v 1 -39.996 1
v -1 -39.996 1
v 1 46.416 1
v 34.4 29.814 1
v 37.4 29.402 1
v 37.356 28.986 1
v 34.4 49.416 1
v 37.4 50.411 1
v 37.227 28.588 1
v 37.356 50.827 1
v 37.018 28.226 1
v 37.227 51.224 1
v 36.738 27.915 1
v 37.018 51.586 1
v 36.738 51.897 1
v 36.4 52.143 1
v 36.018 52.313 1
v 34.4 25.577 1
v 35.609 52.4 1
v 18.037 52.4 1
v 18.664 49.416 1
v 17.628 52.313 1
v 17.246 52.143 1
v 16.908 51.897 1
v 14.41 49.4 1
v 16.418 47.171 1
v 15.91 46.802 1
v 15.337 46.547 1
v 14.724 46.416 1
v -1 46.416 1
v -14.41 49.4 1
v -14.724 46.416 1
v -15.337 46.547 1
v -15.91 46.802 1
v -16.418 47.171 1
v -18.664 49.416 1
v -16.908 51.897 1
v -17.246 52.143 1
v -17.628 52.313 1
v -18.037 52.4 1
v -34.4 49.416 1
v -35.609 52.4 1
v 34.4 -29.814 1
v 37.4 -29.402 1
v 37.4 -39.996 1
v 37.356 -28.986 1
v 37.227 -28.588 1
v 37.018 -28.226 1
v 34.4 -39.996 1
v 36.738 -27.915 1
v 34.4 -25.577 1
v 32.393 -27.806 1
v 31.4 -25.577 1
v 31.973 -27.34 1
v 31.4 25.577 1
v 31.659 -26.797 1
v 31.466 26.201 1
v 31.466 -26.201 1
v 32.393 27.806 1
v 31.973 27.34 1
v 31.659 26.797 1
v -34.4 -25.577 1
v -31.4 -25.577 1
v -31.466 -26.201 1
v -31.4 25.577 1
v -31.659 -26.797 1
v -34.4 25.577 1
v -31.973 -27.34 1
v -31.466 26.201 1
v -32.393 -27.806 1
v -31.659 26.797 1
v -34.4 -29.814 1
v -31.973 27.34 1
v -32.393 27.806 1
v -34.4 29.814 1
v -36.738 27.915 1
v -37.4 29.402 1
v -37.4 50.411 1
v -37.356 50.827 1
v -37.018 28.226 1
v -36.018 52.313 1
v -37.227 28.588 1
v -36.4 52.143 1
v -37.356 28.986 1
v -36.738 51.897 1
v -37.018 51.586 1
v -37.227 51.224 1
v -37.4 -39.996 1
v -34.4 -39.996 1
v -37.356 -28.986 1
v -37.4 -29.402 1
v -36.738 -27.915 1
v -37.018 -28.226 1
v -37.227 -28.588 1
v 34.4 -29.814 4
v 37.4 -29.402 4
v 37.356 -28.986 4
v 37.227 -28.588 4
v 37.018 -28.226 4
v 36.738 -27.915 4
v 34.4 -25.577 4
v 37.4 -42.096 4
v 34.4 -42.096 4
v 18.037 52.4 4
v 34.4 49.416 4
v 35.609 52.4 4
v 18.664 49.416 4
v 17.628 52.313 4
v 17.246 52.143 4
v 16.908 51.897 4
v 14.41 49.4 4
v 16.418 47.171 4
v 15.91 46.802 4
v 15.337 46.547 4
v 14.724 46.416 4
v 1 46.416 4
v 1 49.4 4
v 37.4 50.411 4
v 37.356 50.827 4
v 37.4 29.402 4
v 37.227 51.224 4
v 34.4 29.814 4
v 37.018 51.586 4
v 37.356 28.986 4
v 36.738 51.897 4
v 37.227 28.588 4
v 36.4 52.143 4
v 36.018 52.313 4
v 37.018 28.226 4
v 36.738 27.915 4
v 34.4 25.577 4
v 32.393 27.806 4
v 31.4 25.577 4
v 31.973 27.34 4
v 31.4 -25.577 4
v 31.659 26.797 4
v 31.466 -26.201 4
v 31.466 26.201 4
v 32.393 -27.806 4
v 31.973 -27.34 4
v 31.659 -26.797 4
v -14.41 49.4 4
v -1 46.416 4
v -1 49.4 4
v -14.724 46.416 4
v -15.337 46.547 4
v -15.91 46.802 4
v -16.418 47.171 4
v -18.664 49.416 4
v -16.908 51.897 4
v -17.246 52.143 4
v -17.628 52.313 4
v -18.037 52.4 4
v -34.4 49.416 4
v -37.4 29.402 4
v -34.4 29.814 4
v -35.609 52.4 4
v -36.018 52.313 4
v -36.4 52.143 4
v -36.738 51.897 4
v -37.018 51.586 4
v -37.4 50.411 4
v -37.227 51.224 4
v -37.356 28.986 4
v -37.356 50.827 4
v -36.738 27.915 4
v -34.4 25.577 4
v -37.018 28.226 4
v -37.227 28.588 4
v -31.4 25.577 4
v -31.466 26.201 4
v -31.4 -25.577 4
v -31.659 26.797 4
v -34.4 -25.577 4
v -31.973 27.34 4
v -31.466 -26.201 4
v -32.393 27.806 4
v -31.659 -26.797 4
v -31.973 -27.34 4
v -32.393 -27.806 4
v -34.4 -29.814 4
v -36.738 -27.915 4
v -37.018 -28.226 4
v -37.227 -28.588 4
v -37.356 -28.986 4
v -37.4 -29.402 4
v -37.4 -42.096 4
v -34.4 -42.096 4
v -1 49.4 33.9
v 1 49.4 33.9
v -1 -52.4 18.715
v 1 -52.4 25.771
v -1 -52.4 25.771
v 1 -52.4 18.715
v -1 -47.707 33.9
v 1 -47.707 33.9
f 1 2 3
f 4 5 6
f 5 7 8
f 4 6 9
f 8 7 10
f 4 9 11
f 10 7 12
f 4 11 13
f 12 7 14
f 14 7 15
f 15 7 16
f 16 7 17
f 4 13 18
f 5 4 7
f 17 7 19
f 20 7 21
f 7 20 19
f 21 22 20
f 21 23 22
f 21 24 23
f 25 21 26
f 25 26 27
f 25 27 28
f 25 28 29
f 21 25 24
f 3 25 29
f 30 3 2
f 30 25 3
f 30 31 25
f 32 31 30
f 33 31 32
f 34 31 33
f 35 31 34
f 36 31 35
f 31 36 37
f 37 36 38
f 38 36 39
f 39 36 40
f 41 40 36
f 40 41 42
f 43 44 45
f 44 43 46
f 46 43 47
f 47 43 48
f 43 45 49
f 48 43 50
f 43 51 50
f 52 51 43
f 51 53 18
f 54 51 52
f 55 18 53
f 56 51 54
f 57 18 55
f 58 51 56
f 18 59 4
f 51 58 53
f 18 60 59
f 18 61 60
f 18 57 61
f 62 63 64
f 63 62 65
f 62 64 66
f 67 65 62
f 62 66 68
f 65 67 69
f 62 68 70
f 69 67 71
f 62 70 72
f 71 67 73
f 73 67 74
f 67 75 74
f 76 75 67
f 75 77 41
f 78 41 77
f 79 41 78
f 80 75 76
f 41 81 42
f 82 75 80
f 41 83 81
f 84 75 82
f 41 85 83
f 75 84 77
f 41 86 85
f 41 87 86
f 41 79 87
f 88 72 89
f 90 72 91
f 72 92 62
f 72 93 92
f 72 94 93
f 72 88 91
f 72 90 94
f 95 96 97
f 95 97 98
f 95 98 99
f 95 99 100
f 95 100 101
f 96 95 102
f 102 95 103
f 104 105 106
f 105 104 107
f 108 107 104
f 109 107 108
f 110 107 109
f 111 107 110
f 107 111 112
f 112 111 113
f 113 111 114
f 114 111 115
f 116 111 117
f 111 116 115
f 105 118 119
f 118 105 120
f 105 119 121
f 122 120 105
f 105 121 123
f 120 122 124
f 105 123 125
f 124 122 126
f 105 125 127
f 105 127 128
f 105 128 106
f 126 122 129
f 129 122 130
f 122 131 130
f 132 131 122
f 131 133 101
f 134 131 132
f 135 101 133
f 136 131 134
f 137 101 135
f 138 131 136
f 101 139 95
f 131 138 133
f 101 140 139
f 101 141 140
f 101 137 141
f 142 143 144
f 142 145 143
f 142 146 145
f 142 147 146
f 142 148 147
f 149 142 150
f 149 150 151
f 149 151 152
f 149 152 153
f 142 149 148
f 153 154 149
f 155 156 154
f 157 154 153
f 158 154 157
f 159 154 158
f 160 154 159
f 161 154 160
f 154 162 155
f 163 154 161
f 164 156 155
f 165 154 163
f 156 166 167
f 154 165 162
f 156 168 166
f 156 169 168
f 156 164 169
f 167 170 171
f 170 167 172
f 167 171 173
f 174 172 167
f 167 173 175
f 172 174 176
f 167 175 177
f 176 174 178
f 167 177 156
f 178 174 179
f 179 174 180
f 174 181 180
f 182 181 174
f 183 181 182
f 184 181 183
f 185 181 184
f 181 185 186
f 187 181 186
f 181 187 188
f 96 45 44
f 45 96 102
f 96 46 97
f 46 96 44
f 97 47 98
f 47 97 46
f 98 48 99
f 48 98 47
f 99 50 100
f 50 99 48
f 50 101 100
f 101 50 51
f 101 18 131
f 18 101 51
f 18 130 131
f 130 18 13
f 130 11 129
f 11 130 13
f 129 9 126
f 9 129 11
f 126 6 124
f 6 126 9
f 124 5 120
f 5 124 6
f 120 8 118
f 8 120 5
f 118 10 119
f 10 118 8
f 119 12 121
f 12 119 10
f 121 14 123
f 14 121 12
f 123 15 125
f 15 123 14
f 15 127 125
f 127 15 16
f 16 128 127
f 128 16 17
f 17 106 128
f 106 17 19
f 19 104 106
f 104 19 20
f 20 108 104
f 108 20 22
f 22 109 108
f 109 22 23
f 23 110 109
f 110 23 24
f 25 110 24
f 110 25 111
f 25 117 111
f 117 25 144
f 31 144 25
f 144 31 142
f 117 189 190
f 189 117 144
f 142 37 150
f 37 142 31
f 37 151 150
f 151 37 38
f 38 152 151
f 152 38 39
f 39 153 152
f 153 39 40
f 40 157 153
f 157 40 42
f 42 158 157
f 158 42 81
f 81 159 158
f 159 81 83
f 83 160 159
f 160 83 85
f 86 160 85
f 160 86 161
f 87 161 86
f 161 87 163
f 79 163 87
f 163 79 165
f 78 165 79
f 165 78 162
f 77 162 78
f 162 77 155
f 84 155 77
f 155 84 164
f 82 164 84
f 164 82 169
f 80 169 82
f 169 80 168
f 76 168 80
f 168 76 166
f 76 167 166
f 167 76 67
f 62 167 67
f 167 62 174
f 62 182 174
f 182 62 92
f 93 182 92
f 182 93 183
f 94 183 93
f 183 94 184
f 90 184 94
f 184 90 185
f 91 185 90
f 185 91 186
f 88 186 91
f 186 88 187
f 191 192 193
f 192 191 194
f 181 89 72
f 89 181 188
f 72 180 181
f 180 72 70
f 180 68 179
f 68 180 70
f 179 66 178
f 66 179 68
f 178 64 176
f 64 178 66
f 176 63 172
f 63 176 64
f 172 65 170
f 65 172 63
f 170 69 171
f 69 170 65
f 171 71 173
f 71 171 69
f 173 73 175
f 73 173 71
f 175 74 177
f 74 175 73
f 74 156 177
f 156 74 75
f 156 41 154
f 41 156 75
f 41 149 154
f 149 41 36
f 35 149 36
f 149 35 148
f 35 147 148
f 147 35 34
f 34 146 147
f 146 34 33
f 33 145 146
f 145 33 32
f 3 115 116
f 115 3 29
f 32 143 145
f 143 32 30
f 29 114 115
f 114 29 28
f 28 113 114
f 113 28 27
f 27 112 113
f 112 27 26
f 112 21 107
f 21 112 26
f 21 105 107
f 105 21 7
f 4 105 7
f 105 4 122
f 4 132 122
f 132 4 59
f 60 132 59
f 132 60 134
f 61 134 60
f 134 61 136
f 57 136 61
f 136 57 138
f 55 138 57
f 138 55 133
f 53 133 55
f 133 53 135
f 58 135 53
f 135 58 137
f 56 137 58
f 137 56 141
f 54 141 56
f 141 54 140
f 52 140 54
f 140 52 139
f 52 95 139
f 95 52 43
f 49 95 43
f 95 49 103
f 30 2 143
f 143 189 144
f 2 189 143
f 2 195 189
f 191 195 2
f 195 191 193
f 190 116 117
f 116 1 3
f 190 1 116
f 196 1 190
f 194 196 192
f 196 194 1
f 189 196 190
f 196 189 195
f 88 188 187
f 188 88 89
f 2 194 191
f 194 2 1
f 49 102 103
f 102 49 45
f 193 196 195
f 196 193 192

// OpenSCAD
// file: scad-utils/morphology.scad
// Copyright (c) 2013 Oskar Linde. All rights reserved.
// License: BSD
//
// This library contains basic 2D morphology operations
//
// outset(d=1)            - creates a polygon at an offset d outside a 2D shape
// inset(d=1)             - creates a polygon at an offset d inside a 2D shape
// fillet(r=1)            - adds fillets of radius r to all concave corners of a 2D shape
// rounding(r=1)          - adds rounding to all convex corners of a 2D shape
// shell(d,center=false)  - makes a shell of width d along the edge of a 2D shape
//                        - positive values of d places the shell on the outside
//                        - negative values of d places the shell on the inside
//                        - center=true and positive d places the shell centered on the edge

module outset(d=1) {
	// Bug workaround for older OpenSCAD versions
	if (version_num() < 20130424) render() outset_extruded(d) children();
	else minkowski() {
		circle(r=d);
		children();
	}
}

module outset_extruded(d=1) {
   projection(cut=true) minkowski() {
        cylinder(r=d);
        linear_extrude(center=true) children();
   }
}

module inset(d=1) {
	 render() inverse() outset(d=d) inverse() children();
}

module fillet(r=1) {
	inset(d=r) render() outset(d=r) children();
}

module rounding(r=1) {
	outset(d=r) inset(d=r) children();
}

module shell(d,center=false) {
	if (center && d > 0) {
		difference() {
			outset(d=d/2) children();
			inset(d=d/2) children();
		}
	}
	if (!center && d > 0) {
		difference() {
			outset(d=d) children();
			children();
		}
	}
	if (!center && d < 0) {
		difference() {
			children();
			inset(d=-d) children();
		}
	}
	if (d == 0) children();
}


// Below are for internal use only

module inverse() {
	difference() {
		square(1e5,center=true);
		children();
	}
}


// TEST CODE

use <mirror.scad>

module arrow(l=1,w=.6,t=0.15) {
	mirror_y() polygon([[0,0],[l,0],[l-w/2,w/2],[l-w/2-sqrt(2)*t,w/2],[l-t/2-sqrt(2)*t,t/2],[0,t/2]]);
}

module shape() {
	polygon([[0,0],[1,0],[1.5,1],[2.5,1],[2,-1],[0,-1]]);
}

if(0) assign($fn=32) {

	for (p = [0:10*3-1]) assign(o=floor(p/3)) {
		translate([(p%3)*2.5,-o*3]) {
			//%if (p % 3 == 1) translate([0,0,1]) shape();
			if (p % 3 == 0) shape();
			if (p % 3 == 1) translate([0.6,0]) arrow();
			if (p % 3 == 2) {
				if (o == 0) inset(d=0.3) shape();
				if (o == 1) outset(d=0.3) shape();
				if (o == 2) rounding(r=0.3) shape();
				if (o == 3) fillet(r=0.3) shape();
				if (o == 4) shell(d=0.3) shape();
				if (o == 5) shell(d=-0.3) shape();
				if (o == 6) shell(d=0.3,center=true) shape();
				if (o == 7) rounding(r=0.3) fillet(r=0.3) shape();
				if (o == 8) shell(d=0.3,center=true) fillet(r=0.3) rounding(r=0.3) shape();
				if (o == 9) shell(d=-0.3) fillet(r=0.3) rounding(r=0.3) shape();
			}
		}
	}
}
// file: scad-utils/mirror.scad
// Copyright (c) 2013 Oskar Linde. All rights reserved.
// License: BSD
//
// This library contains simple mirroring functions
//
// mirror_x()
// mirror_y()
// mirror_z()


module mirror_x() {
  union() {
    child();
    scale([-1,1,1]) child();
  }
}

module mirror_y() {
  union() {
    child();
    scale([1,-1,1]) child();
  }
}

module mirror_z() {
  union() {
    child();
    scale([1,1,-1]) child();
  }
}
// file: parametric-stackable-box.scad
include <scad-utils/mirror.scad>
include <scad-utils/morphology.scad>

$fn=30;

/* Parameters */
BODY_X = 80;
BODY_Y = 110;
BODY_Z = 47;

module base(r=1) {
  basePoints = [
    [BODY_X/2, 0],
    [0, 0],
    [0, BODY_Y/4],
    [3, BODY_Y/4 + 3],
    [3, BODY_Y/4 * 3 - 3],
    [0, BODY_Y/4 * 3],
    [0, BODY_Y/4 * 4],
    [0 + BODY_X/3 - 3, BODY_Y/4 * 4],
    [0 + BODY_X/3, BODY_Y/4 * 4 - 3],
    [BODY_X/2, BODY_Y/4 * 4 - 3],
  ];

  pointsCentered = [for (p=basePoints)
    [
      p[0] - BODY_X/2,
      p[1] - BODY_Y/2
    ]
  ];

  points = concat(
    pointsCentered,
    [for (p=pointsCentered) [p[0]*-1, p[1]] ]
  );

  rounding(r=r)
  polygon(points=points);
}

/* Parameters 2 */
WALL_THICK = 0.4*4;

HOLDER_Z_TOTAL = 10;
HOLDER_Z_JOINT = 3;
HOLDER_Z = HOLDER_Z_TOTAL - HOLDER_Z_JOINT;
HOLDER_DELTA = 0.8+0.4*4;
HOLDER_CLEARANCE = 0.4*2;

FRONT_EDGE_DEG = 35;
FRONT_EDGE_LEN = 20;

FRONT_EDGE_TOP_DEG = 30;
FRONT_EDGE_TOP_LEN = 25;

module body() {
  difference() {
    union() {
      // inner
      linear_extrude(height=BODY_Z-HOLDER_Z_TOTAL, center=!true, convexity=10, twist=0)
      base();

      // joint
      translate([0, 0, BODY_Z-HOLDER_Z])
      minkowski() {
        hull() {
          linear_extrude(height=0.01, center=!true)
          rounding(r=2-0.01)
          square(size=[HOLDER_DELTA*2, HOLDER_DELTA*2], center=true);
          translate([0, 0, -HOLDER_Z_JOINT])
          sphere(r=0.01);
        }

        linear_extrude(
          height=0.01,
          center=!true,
          convexity=10
        )
        base();
      }

      // holder
      translate([0, 0, BODY_Z-HOLDER_Z])
      linear_extrude(height=HOLDER_Z, center=!true, convexity=10, twist=0)
      offset(r=HOLDER_DELTA)
      base();
    }

    // inner space
    difference() {
      translate([0, 0, 1])
      linear_extrude(height=BODY_Z, center=!true, convexity=10, twist=0)
      offset(r=-WALL_THICK)
      base();

      // frontEdge
      frontEdge();
    }

    // holder inner space
    translate([0, 0, BODY_Z-HOLDER_Z+1])
    linear_extrude(height=HOLDER_Z, center=!true, convexity=10, twist=0)
    offset(r=HOLDER_CLEARANCE)
    base();

    // front space
    translate([0, -BODY_Y/2, BODY_Z/2 + FRONT_EDGE_LEN + 1])
    cube(size=[BODY_X-WALL_THICK*2, 10, BODY_Z+1], center=true);

    // frontEdge
    translate([0, -1*sin(FRONT_EDGE_DEG), -1*cos(FRONT_EDGE_DEG)])
    frontEdge();

    // frontEdgeTop
    translate([0, -1*sin(FRONT_EDGE_TOP_DEG), -1*cos(FRONT_EDGE_TOP_DEG)])
    frontEdgeTop();
  }
}

module frontEdge(args) {
  translate([0, -BODY_Y/2, 0])
  rotate([FRONT_EDGE_DEG, 0, 0])
  cube(
    size=[
      BODY_X+10,
      FRONT_EDGE_LEN*2*sin(FRONT_EDGE_DEG),
      FRONT_EDGE_LEN*2*cos(FRONT_EDGE_DEG)
    ],
    center=true
  );
}

module frontEdgeTop() {
  translate([0, -BODY_Y/2, BODY_Z])
  rotate([180-FRONT_EDGE_TOP_DEG, 0, 0])
  cube(
    size=[
      BODY_X+10,
      FRONT_EDGE_TOP_LEN*2*sin(FRONT_EDGE_TOP_DEG),
      FRONT_EDGE_TOP_LEN*2*cos(FRONT_EDGE_TOP_DEG)
    ],
    center=true
  );
}

DRAW_BODY=true;
if (DRAW_BODY) {
  body();
}

/* Show dimentions */
module dimenText(text, len, pos=0) {
  module vert(t=0.5) {
    translate([0, len/2 - t/2, -3/2])
    rotate([90, 0, 90])
    square(size=[t, 3], center=true);
  }

  module dimen() {
    rotate([90, 0, 90])
    square(size=[len, 0.5], center=true);

    vert();
    mirror_y()
    vert();
  }

  textAligns = [
    "center",
    "left",
    "right",
    "center",
  ];
  textPositions = [
    [0, 0, 5],
    [0, 5, 0],
    [0, -5, 0],
    [0, 0, -10],
  ];
  dimenRotations = [
    [0, 0, 0],
    [-90, 0, 0],
    [90, 0, 0],
    [0, 180, 0],
  ];

  color("red") {
    translate(textPositions[pos])
    rotate([90, 0, 90])
    text(text, size=4, font="Sans", halign=textAligns[pos], valign="center",
    spacing=1.0, direction="ltr", language="en", script="latin", center=true);

    rotate(dimenRotations[pos])
    dimen();
  }
}

if (DRAW_BODY) {
  translate([0, 0, BODY_Z + 8])
  dimenText("BODY_Y", BODY_Y, 0);

  translate([0, BODY_Y/2 + 8, BODY_Z/2])
  dimenText("BODY_Z", BODY_Z, 1);

  translate([0, BODY_Y/2 + 8 + 8, HOLDER_Z_TOTAL/2 + BODY_Z - HOLDER_Z_TOTAL])
  dimenText("HOLDER_Z_TOTAL", HOLDER_Z_TOTAL, 1);

  translate([0, -BODY_Y/2 - 8, HOLDER_Z_JOINT/2 + BODY_Z - HOLDER_Z_TOTAL])
  dimenText("HOLDER_Z_JOINT", HOLDER_Z_JOINT, 2);

  translate([0, -BODY_Y/2, (FRONT_EDGE_LEN)*sin(FRONT_EDGE_DEG)/2])
  rotate([FRONT_EDGE_DEG, 0, 0])
  dimenText("FRONT_EDGE_LEN", FRONT_EDGE_LEN, 2);
}
// main file
include <parametric-stackable-box.scad>

$fn=30;

/* Parameters */
DRAW_BODY=false;
BODY_Z = 47;

ORG_CLEARANCE=1;
ORG_FRAME_Z=3;
ORG_WALL_T=0.4*5;
ORG_WALL_Z=BODY_Z*0.7;

module orgBase(args) {
  rounding(r=2)
  offset(delta=-WALL_THICK-ORG_CLEARANCE)
  base();
}

translate([0, 0, 1])
difference() {
  union() {
    linear_extrude(height=ORG_FRAME_Z, center=!true, convexity=10, twist=0)
    shell(d=-3)
    orgBase();

    // divider
    linear_extrude(height=ORG_WALL_Z, center=!true, convexity=10, twist=0)
    intersection() {
      union() {
        square(size=[ORG_WALL_T, BODY_Y], center=true);
      }
      orgBase();
    }

  }

  translate([0, ORG_CLEARANCE, 0]){
    frontEdge();
    frontEdgeTop();
  }
}


%body();
